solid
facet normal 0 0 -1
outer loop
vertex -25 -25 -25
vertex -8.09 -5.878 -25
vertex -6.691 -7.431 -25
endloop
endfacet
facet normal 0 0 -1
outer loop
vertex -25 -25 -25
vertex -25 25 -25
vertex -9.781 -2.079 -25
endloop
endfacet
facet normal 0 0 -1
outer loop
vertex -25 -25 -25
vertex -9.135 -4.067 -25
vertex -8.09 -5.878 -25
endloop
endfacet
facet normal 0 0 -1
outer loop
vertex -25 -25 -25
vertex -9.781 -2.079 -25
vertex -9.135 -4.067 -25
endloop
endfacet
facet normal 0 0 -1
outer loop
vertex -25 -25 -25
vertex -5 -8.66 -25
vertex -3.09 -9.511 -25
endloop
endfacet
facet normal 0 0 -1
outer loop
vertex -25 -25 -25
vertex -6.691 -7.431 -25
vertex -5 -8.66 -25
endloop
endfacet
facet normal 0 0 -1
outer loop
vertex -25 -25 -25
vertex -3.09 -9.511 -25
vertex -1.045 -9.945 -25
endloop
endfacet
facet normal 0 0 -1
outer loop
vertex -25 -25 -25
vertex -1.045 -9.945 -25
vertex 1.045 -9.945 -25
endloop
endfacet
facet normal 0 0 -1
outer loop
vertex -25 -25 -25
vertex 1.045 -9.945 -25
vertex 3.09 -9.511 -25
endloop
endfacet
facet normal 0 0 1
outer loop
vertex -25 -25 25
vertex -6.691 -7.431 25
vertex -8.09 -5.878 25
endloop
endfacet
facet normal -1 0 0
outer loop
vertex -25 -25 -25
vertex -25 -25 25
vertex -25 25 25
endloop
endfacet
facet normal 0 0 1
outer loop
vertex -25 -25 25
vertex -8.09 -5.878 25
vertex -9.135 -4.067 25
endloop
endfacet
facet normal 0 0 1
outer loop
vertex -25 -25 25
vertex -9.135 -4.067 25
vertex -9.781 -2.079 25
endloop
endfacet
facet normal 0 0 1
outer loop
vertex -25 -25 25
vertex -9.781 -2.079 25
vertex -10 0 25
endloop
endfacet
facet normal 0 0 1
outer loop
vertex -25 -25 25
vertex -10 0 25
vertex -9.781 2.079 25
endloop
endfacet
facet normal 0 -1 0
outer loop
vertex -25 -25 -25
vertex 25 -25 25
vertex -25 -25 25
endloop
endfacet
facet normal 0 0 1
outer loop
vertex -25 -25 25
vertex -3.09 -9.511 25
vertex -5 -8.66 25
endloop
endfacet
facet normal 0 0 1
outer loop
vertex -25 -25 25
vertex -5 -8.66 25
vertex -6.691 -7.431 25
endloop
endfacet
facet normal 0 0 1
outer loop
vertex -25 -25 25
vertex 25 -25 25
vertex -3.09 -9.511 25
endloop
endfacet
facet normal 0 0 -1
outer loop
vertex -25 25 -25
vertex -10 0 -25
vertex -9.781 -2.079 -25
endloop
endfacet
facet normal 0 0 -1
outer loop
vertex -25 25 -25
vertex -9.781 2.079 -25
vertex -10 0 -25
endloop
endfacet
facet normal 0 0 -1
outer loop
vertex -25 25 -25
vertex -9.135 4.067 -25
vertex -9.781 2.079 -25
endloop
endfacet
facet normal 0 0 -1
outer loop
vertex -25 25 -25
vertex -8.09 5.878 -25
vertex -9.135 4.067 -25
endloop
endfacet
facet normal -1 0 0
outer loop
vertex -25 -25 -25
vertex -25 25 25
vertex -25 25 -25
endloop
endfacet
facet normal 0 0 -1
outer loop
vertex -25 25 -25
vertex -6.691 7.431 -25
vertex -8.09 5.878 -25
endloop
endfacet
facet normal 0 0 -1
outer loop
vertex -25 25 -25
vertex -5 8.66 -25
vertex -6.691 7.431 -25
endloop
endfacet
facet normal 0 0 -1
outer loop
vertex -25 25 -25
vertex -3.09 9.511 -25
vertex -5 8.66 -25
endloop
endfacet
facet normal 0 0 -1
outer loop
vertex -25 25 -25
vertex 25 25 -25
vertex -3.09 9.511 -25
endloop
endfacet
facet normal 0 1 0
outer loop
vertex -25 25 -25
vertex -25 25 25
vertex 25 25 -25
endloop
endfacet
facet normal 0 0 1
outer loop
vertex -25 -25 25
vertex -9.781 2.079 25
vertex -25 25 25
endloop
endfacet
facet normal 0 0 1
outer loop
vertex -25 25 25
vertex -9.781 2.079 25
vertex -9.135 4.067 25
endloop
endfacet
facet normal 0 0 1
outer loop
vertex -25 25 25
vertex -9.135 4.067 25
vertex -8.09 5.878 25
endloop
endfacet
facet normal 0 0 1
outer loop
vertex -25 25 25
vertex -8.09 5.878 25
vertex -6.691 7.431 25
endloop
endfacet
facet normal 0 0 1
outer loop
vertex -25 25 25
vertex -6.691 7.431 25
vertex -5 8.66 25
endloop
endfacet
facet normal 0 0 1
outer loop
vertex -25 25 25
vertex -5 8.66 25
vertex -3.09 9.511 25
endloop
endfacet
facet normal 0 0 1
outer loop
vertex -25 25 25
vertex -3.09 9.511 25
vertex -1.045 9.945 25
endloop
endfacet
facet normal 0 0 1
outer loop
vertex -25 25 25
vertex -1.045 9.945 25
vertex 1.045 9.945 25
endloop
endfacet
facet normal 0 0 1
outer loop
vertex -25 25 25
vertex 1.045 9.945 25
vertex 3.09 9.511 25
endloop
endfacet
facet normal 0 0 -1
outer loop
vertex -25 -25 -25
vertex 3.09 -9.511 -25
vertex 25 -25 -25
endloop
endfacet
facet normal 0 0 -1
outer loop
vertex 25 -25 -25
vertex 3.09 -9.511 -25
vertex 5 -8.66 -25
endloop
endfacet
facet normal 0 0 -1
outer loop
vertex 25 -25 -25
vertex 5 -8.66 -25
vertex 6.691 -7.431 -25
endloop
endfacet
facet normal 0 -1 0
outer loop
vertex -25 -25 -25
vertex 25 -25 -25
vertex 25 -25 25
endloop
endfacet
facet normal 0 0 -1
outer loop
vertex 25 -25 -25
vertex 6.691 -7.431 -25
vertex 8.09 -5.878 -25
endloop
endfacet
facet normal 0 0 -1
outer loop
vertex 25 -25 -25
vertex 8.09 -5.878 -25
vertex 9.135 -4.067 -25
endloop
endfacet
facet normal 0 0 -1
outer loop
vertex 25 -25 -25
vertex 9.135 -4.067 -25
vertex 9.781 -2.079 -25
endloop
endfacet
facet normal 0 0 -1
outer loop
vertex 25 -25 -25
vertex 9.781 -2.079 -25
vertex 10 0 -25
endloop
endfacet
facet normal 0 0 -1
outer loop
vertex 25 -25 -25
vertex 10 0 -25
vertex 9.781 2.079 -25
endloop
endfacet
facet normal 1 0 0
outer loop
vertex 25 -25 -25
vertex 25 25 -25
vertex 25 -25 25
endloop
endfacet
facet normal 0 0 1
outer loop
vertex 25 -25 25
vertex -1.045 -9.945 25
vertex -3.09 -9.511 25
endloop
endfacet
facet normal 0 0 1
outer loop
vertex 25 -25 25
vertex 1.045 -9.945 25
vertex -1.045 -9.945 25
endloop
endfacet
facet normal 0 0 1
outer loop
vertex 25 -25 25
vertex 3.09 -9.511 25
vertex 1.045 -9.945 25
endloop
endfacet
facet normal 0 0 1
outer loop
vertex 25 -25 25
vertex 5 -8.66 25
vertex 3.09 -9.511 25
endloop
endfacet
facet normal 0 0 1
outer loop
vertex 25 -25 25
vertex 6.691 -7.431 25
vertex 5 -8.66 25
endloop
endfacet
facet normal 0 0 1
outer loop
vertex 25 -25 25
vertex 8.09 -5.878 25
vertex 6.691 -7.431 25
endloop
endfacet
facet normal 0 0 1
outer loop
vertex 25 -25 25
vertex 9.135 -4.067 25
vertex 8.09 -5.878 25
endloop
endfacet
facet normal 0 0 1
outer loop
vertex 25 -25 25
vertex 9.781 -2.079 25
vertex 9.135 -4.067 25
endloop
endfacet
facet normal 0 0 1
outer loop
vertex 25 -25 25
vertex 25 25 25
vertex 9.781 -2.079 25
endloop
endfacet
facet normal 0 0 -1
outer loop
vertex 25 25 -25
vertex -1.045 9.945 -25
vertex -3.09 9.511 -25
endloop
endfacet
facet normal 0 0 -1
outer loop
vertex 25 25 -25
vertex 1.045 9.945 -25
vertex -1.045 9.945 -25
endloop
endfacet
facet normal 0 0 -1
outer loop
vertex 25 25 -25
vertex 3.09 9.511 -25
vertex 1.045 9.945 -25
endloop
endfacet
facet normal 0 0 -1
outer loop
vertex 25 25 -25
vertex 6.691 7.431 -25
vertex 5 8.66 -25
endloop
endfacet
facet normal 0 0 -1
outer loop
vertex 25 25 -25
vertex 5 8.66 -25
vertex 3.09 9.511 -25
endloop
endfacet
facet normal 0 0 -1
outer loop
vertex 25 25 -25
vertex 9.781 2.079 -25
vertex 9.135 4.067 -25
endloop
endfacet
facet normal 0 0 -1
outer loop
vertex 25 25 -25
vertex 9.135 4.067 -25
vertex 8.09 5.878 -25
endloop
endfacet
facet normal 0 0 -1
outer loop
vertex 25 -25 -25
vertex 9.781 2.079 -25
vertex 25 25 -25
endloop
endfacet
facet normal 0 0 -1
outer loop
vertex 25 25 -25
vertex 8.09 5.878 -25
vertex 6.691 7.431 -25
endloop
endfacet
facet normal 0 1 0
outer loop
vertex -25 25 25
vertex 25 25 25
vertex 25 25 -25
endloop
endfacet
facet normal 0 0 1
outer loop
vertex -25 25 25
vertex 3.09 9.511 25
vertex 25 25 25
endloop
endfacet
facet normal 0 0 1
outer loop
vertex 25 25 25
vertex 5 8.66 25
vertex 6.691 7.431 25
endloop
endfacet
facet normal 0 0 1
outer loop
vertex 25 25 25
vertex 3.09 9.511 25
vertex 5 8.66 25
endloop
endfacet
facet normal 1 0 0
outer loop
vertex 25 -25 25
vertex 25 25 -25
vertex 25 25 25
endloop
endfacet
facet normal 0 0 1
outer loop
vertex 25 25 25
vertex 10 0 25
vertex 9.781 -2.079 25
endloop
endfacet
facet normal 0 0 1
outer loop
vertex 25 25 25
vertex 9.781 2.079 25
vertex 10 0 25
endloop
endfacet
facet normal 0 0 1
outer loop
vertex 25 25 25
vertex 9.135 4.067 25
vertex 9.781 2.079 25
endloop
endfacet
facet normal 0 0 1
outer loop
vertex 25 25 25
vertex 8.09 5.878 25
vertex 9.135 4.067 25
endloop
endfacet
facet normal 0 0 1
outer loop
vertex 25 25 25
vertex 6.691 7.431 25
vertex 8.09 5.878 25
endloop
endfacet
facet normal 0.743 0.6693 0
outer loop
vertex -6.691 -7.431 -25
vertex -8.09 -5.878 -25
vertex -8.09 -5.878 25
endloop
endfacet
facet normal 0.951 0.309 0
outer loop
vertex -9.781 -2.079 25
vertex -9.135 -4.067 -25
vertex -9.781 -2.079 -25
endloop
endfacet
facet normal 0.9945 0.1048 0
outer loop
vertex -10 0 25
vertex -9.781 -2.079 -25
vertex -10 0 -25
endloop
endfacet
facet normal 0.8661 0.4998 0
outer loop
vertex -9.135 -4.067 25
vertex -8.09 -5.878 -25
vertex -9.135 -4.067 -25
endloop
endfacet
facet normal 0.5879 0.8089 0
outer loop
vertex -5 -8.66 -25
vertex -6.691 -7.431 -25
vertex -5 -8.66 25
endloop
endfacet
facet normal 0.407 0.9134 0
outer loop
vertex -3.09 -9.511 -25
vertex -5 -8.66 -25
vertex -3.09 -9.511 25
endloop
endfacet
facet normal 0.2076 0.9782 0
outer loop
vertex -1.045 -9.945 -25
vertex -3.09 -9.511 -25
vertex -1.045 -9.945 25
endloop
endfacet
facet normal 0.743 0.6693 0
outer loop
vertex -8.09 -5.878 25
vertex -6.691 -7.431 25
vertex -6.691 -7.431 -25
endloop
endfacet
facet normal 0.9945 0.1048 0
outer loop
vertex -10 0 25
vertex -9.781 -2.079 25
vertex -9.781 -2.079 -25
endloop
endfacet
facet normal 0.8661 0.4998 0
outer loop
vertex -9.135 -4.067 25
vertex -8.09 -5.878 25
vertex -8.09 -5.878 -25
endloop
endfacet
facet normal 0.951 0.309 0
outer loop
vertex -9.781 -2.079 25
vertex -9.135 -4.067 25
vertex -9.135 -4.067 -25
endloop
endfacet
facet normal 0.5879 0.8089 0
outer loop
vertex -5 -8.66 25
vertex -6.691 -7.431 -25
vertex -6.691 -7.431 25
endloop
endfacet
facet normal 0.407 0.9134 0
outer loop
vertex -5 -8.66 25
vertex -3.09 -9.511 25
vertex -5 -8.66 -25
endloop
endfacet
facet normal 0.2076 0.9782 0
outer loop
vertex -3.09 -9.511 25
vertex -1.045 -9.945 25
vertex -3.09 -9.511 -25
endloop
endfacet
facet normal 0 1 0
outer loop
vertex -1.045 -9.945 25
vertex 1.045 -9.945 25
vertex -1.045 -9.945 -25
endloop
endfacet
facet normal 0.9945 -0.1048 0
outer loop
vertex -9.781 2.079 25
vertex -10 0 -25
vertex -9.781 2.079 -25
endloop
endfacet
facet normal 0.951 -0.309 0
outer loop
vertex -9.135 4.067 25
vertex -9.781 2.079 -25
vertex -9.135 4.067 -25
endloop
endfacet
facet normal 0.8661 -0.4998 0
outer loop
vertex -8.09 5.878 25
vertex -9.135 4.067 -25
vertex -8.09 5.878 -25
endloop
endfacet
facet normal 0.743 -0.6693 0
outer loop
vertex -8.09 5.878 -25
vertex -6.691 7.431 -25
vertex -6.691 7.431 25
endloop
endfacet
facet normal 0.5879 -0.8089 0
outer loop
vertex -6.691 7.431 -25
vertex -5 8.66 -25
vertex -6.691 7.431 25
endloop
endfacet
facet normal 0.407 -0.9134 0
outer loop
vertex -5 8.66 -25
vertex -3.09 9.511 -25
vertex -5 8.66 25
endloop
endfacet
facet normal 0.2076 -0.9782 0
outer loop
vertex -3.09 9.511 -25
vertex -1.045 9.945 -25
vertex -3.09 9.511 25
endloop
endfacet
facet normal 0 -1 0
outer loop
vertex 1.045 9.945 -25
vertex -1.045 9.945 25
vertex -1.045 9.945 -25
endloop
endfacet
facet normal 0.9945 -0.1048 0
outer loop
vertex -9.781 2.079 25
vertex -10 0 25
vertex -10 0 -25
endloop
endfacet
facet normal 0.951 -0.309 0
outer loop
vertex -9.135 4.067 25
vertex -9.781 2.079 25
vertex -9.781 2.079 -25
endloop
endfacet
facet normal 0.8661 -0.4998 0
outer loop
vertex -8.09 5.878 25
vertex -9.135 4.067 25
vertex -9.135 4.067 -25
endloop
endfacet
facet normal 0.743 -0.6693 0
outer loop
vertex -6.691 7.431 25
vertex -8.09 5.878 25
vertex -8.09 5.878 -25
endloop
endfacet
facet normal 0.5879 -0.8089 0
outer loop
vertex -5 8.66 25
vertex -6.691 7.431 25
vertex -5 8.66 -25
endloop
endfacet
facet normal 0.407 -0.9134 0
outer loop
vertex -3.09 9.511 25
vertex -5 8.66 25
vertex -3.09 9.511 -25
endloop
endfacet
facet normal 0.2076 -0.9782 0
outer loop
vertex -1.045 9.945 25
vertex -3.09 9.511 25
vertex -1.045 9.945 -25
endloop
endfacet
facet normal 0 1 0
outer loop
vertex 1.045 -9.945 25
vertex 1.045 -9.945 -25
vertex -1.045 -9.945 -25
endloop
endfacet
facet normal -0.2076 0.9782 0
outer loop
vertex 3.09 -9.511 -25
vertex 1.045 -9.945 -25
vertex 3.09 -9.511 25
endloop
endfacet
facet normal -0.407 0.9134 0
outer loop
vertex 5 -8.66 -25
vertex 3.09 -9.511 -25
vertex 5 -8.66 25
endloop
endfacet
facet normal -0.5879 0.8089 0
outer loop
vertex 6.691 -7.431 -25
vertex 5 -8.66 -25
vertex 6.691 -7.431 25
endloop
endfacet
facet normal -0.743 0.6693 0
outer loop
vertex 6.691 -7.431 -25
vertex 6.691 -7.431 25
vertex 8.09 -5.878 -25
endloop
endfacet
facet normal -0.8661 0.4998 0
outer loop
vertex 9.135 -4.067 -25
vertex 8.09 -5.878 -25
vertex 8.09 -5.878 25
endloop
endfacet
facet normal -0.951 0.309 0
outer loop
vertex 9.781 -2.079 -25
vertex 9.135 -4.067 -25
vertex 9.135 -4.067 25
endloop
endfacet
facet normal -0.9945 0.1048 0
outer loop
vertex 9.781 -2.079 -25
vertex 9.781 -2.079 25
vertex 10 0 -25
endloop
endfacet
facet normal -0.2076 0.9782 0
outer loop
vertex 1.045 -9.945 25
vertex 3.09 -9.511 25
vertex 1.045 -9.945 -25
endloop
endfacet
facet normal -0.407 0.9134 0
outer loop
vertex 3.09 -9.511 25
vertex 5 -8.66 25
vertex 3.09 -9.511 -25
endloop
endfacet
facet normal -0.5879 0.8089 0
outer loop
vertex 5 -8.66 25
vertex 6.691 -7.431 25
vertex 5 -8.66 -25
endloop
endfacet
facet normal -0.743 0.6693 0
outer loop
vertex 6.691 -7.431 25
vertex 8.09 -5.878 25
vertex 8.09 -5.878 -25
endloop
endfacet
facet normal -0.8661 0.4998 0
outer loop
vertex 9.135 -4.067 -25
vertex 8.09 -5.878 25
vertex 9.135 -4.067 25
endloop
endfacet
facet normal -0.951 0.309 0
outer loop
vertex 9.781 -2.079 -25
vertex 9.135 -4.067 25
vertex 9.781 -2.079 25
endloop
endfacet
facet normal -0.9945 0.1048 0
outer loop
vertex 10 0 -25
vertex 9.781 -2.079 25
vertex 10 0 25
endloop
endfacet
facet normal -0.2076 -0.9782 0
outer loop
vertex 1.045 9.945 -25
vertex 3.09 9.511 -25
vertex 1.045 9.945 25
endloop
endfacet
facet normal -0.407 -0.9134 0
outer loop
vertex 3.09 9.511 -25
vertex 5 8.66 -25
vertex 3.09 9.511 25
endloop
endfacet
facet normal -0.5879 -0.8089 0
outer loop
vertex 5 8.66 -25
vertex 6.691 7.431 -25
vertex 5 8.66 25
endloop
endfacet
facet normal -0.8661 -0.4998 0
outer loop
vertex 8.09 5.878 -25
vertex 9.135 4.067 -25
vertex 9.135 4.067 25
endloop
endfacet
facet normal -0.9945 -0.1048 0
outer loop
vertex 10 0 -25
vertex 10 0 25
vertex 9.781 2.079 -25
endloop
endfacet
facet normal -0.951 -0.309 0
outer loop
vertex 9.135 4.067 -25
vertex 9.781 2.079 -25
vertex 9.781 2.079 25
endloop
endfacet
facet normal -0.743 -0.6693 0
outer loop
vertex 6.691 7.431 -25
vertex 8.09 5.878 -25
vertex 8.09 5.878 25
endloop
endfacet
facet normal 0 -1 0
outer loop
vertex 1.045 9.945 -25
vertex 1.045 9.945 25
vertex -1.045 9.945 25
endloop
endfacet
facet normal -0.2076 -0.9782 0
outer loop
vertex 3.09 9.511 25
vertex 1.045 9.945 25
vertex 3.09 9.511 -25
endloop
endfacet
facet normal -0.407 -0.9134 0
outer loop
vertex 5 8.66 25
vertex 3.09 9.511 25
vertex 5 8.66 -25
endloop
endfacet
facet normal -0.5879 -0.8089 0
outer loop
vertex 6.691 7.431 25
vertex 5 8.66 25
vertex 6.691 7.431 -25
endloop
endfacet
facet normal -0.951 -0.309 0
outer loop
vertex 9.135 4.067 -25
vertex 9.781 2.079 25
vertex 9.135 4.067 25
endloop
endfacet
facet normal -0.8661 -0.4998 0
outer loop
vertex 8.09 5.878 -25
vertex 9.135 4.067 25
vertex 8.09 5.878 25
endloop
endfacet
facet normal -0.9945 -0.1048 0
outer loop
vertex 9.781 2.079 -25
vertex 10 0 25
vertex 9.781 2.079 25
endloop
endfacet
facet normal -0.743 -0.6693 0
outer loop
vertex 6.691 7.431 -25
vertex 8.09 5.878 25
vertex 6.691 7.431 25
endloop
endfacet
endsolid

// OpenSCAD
module hollow_cube(size, hole_diameter) {
    difference() {
        cube(size, center = true);
        cylinder(h = size * 2, d = hole_diameter, center = true);
    }
}

hollow_cube(size = 50, hole_diameter = 20);
